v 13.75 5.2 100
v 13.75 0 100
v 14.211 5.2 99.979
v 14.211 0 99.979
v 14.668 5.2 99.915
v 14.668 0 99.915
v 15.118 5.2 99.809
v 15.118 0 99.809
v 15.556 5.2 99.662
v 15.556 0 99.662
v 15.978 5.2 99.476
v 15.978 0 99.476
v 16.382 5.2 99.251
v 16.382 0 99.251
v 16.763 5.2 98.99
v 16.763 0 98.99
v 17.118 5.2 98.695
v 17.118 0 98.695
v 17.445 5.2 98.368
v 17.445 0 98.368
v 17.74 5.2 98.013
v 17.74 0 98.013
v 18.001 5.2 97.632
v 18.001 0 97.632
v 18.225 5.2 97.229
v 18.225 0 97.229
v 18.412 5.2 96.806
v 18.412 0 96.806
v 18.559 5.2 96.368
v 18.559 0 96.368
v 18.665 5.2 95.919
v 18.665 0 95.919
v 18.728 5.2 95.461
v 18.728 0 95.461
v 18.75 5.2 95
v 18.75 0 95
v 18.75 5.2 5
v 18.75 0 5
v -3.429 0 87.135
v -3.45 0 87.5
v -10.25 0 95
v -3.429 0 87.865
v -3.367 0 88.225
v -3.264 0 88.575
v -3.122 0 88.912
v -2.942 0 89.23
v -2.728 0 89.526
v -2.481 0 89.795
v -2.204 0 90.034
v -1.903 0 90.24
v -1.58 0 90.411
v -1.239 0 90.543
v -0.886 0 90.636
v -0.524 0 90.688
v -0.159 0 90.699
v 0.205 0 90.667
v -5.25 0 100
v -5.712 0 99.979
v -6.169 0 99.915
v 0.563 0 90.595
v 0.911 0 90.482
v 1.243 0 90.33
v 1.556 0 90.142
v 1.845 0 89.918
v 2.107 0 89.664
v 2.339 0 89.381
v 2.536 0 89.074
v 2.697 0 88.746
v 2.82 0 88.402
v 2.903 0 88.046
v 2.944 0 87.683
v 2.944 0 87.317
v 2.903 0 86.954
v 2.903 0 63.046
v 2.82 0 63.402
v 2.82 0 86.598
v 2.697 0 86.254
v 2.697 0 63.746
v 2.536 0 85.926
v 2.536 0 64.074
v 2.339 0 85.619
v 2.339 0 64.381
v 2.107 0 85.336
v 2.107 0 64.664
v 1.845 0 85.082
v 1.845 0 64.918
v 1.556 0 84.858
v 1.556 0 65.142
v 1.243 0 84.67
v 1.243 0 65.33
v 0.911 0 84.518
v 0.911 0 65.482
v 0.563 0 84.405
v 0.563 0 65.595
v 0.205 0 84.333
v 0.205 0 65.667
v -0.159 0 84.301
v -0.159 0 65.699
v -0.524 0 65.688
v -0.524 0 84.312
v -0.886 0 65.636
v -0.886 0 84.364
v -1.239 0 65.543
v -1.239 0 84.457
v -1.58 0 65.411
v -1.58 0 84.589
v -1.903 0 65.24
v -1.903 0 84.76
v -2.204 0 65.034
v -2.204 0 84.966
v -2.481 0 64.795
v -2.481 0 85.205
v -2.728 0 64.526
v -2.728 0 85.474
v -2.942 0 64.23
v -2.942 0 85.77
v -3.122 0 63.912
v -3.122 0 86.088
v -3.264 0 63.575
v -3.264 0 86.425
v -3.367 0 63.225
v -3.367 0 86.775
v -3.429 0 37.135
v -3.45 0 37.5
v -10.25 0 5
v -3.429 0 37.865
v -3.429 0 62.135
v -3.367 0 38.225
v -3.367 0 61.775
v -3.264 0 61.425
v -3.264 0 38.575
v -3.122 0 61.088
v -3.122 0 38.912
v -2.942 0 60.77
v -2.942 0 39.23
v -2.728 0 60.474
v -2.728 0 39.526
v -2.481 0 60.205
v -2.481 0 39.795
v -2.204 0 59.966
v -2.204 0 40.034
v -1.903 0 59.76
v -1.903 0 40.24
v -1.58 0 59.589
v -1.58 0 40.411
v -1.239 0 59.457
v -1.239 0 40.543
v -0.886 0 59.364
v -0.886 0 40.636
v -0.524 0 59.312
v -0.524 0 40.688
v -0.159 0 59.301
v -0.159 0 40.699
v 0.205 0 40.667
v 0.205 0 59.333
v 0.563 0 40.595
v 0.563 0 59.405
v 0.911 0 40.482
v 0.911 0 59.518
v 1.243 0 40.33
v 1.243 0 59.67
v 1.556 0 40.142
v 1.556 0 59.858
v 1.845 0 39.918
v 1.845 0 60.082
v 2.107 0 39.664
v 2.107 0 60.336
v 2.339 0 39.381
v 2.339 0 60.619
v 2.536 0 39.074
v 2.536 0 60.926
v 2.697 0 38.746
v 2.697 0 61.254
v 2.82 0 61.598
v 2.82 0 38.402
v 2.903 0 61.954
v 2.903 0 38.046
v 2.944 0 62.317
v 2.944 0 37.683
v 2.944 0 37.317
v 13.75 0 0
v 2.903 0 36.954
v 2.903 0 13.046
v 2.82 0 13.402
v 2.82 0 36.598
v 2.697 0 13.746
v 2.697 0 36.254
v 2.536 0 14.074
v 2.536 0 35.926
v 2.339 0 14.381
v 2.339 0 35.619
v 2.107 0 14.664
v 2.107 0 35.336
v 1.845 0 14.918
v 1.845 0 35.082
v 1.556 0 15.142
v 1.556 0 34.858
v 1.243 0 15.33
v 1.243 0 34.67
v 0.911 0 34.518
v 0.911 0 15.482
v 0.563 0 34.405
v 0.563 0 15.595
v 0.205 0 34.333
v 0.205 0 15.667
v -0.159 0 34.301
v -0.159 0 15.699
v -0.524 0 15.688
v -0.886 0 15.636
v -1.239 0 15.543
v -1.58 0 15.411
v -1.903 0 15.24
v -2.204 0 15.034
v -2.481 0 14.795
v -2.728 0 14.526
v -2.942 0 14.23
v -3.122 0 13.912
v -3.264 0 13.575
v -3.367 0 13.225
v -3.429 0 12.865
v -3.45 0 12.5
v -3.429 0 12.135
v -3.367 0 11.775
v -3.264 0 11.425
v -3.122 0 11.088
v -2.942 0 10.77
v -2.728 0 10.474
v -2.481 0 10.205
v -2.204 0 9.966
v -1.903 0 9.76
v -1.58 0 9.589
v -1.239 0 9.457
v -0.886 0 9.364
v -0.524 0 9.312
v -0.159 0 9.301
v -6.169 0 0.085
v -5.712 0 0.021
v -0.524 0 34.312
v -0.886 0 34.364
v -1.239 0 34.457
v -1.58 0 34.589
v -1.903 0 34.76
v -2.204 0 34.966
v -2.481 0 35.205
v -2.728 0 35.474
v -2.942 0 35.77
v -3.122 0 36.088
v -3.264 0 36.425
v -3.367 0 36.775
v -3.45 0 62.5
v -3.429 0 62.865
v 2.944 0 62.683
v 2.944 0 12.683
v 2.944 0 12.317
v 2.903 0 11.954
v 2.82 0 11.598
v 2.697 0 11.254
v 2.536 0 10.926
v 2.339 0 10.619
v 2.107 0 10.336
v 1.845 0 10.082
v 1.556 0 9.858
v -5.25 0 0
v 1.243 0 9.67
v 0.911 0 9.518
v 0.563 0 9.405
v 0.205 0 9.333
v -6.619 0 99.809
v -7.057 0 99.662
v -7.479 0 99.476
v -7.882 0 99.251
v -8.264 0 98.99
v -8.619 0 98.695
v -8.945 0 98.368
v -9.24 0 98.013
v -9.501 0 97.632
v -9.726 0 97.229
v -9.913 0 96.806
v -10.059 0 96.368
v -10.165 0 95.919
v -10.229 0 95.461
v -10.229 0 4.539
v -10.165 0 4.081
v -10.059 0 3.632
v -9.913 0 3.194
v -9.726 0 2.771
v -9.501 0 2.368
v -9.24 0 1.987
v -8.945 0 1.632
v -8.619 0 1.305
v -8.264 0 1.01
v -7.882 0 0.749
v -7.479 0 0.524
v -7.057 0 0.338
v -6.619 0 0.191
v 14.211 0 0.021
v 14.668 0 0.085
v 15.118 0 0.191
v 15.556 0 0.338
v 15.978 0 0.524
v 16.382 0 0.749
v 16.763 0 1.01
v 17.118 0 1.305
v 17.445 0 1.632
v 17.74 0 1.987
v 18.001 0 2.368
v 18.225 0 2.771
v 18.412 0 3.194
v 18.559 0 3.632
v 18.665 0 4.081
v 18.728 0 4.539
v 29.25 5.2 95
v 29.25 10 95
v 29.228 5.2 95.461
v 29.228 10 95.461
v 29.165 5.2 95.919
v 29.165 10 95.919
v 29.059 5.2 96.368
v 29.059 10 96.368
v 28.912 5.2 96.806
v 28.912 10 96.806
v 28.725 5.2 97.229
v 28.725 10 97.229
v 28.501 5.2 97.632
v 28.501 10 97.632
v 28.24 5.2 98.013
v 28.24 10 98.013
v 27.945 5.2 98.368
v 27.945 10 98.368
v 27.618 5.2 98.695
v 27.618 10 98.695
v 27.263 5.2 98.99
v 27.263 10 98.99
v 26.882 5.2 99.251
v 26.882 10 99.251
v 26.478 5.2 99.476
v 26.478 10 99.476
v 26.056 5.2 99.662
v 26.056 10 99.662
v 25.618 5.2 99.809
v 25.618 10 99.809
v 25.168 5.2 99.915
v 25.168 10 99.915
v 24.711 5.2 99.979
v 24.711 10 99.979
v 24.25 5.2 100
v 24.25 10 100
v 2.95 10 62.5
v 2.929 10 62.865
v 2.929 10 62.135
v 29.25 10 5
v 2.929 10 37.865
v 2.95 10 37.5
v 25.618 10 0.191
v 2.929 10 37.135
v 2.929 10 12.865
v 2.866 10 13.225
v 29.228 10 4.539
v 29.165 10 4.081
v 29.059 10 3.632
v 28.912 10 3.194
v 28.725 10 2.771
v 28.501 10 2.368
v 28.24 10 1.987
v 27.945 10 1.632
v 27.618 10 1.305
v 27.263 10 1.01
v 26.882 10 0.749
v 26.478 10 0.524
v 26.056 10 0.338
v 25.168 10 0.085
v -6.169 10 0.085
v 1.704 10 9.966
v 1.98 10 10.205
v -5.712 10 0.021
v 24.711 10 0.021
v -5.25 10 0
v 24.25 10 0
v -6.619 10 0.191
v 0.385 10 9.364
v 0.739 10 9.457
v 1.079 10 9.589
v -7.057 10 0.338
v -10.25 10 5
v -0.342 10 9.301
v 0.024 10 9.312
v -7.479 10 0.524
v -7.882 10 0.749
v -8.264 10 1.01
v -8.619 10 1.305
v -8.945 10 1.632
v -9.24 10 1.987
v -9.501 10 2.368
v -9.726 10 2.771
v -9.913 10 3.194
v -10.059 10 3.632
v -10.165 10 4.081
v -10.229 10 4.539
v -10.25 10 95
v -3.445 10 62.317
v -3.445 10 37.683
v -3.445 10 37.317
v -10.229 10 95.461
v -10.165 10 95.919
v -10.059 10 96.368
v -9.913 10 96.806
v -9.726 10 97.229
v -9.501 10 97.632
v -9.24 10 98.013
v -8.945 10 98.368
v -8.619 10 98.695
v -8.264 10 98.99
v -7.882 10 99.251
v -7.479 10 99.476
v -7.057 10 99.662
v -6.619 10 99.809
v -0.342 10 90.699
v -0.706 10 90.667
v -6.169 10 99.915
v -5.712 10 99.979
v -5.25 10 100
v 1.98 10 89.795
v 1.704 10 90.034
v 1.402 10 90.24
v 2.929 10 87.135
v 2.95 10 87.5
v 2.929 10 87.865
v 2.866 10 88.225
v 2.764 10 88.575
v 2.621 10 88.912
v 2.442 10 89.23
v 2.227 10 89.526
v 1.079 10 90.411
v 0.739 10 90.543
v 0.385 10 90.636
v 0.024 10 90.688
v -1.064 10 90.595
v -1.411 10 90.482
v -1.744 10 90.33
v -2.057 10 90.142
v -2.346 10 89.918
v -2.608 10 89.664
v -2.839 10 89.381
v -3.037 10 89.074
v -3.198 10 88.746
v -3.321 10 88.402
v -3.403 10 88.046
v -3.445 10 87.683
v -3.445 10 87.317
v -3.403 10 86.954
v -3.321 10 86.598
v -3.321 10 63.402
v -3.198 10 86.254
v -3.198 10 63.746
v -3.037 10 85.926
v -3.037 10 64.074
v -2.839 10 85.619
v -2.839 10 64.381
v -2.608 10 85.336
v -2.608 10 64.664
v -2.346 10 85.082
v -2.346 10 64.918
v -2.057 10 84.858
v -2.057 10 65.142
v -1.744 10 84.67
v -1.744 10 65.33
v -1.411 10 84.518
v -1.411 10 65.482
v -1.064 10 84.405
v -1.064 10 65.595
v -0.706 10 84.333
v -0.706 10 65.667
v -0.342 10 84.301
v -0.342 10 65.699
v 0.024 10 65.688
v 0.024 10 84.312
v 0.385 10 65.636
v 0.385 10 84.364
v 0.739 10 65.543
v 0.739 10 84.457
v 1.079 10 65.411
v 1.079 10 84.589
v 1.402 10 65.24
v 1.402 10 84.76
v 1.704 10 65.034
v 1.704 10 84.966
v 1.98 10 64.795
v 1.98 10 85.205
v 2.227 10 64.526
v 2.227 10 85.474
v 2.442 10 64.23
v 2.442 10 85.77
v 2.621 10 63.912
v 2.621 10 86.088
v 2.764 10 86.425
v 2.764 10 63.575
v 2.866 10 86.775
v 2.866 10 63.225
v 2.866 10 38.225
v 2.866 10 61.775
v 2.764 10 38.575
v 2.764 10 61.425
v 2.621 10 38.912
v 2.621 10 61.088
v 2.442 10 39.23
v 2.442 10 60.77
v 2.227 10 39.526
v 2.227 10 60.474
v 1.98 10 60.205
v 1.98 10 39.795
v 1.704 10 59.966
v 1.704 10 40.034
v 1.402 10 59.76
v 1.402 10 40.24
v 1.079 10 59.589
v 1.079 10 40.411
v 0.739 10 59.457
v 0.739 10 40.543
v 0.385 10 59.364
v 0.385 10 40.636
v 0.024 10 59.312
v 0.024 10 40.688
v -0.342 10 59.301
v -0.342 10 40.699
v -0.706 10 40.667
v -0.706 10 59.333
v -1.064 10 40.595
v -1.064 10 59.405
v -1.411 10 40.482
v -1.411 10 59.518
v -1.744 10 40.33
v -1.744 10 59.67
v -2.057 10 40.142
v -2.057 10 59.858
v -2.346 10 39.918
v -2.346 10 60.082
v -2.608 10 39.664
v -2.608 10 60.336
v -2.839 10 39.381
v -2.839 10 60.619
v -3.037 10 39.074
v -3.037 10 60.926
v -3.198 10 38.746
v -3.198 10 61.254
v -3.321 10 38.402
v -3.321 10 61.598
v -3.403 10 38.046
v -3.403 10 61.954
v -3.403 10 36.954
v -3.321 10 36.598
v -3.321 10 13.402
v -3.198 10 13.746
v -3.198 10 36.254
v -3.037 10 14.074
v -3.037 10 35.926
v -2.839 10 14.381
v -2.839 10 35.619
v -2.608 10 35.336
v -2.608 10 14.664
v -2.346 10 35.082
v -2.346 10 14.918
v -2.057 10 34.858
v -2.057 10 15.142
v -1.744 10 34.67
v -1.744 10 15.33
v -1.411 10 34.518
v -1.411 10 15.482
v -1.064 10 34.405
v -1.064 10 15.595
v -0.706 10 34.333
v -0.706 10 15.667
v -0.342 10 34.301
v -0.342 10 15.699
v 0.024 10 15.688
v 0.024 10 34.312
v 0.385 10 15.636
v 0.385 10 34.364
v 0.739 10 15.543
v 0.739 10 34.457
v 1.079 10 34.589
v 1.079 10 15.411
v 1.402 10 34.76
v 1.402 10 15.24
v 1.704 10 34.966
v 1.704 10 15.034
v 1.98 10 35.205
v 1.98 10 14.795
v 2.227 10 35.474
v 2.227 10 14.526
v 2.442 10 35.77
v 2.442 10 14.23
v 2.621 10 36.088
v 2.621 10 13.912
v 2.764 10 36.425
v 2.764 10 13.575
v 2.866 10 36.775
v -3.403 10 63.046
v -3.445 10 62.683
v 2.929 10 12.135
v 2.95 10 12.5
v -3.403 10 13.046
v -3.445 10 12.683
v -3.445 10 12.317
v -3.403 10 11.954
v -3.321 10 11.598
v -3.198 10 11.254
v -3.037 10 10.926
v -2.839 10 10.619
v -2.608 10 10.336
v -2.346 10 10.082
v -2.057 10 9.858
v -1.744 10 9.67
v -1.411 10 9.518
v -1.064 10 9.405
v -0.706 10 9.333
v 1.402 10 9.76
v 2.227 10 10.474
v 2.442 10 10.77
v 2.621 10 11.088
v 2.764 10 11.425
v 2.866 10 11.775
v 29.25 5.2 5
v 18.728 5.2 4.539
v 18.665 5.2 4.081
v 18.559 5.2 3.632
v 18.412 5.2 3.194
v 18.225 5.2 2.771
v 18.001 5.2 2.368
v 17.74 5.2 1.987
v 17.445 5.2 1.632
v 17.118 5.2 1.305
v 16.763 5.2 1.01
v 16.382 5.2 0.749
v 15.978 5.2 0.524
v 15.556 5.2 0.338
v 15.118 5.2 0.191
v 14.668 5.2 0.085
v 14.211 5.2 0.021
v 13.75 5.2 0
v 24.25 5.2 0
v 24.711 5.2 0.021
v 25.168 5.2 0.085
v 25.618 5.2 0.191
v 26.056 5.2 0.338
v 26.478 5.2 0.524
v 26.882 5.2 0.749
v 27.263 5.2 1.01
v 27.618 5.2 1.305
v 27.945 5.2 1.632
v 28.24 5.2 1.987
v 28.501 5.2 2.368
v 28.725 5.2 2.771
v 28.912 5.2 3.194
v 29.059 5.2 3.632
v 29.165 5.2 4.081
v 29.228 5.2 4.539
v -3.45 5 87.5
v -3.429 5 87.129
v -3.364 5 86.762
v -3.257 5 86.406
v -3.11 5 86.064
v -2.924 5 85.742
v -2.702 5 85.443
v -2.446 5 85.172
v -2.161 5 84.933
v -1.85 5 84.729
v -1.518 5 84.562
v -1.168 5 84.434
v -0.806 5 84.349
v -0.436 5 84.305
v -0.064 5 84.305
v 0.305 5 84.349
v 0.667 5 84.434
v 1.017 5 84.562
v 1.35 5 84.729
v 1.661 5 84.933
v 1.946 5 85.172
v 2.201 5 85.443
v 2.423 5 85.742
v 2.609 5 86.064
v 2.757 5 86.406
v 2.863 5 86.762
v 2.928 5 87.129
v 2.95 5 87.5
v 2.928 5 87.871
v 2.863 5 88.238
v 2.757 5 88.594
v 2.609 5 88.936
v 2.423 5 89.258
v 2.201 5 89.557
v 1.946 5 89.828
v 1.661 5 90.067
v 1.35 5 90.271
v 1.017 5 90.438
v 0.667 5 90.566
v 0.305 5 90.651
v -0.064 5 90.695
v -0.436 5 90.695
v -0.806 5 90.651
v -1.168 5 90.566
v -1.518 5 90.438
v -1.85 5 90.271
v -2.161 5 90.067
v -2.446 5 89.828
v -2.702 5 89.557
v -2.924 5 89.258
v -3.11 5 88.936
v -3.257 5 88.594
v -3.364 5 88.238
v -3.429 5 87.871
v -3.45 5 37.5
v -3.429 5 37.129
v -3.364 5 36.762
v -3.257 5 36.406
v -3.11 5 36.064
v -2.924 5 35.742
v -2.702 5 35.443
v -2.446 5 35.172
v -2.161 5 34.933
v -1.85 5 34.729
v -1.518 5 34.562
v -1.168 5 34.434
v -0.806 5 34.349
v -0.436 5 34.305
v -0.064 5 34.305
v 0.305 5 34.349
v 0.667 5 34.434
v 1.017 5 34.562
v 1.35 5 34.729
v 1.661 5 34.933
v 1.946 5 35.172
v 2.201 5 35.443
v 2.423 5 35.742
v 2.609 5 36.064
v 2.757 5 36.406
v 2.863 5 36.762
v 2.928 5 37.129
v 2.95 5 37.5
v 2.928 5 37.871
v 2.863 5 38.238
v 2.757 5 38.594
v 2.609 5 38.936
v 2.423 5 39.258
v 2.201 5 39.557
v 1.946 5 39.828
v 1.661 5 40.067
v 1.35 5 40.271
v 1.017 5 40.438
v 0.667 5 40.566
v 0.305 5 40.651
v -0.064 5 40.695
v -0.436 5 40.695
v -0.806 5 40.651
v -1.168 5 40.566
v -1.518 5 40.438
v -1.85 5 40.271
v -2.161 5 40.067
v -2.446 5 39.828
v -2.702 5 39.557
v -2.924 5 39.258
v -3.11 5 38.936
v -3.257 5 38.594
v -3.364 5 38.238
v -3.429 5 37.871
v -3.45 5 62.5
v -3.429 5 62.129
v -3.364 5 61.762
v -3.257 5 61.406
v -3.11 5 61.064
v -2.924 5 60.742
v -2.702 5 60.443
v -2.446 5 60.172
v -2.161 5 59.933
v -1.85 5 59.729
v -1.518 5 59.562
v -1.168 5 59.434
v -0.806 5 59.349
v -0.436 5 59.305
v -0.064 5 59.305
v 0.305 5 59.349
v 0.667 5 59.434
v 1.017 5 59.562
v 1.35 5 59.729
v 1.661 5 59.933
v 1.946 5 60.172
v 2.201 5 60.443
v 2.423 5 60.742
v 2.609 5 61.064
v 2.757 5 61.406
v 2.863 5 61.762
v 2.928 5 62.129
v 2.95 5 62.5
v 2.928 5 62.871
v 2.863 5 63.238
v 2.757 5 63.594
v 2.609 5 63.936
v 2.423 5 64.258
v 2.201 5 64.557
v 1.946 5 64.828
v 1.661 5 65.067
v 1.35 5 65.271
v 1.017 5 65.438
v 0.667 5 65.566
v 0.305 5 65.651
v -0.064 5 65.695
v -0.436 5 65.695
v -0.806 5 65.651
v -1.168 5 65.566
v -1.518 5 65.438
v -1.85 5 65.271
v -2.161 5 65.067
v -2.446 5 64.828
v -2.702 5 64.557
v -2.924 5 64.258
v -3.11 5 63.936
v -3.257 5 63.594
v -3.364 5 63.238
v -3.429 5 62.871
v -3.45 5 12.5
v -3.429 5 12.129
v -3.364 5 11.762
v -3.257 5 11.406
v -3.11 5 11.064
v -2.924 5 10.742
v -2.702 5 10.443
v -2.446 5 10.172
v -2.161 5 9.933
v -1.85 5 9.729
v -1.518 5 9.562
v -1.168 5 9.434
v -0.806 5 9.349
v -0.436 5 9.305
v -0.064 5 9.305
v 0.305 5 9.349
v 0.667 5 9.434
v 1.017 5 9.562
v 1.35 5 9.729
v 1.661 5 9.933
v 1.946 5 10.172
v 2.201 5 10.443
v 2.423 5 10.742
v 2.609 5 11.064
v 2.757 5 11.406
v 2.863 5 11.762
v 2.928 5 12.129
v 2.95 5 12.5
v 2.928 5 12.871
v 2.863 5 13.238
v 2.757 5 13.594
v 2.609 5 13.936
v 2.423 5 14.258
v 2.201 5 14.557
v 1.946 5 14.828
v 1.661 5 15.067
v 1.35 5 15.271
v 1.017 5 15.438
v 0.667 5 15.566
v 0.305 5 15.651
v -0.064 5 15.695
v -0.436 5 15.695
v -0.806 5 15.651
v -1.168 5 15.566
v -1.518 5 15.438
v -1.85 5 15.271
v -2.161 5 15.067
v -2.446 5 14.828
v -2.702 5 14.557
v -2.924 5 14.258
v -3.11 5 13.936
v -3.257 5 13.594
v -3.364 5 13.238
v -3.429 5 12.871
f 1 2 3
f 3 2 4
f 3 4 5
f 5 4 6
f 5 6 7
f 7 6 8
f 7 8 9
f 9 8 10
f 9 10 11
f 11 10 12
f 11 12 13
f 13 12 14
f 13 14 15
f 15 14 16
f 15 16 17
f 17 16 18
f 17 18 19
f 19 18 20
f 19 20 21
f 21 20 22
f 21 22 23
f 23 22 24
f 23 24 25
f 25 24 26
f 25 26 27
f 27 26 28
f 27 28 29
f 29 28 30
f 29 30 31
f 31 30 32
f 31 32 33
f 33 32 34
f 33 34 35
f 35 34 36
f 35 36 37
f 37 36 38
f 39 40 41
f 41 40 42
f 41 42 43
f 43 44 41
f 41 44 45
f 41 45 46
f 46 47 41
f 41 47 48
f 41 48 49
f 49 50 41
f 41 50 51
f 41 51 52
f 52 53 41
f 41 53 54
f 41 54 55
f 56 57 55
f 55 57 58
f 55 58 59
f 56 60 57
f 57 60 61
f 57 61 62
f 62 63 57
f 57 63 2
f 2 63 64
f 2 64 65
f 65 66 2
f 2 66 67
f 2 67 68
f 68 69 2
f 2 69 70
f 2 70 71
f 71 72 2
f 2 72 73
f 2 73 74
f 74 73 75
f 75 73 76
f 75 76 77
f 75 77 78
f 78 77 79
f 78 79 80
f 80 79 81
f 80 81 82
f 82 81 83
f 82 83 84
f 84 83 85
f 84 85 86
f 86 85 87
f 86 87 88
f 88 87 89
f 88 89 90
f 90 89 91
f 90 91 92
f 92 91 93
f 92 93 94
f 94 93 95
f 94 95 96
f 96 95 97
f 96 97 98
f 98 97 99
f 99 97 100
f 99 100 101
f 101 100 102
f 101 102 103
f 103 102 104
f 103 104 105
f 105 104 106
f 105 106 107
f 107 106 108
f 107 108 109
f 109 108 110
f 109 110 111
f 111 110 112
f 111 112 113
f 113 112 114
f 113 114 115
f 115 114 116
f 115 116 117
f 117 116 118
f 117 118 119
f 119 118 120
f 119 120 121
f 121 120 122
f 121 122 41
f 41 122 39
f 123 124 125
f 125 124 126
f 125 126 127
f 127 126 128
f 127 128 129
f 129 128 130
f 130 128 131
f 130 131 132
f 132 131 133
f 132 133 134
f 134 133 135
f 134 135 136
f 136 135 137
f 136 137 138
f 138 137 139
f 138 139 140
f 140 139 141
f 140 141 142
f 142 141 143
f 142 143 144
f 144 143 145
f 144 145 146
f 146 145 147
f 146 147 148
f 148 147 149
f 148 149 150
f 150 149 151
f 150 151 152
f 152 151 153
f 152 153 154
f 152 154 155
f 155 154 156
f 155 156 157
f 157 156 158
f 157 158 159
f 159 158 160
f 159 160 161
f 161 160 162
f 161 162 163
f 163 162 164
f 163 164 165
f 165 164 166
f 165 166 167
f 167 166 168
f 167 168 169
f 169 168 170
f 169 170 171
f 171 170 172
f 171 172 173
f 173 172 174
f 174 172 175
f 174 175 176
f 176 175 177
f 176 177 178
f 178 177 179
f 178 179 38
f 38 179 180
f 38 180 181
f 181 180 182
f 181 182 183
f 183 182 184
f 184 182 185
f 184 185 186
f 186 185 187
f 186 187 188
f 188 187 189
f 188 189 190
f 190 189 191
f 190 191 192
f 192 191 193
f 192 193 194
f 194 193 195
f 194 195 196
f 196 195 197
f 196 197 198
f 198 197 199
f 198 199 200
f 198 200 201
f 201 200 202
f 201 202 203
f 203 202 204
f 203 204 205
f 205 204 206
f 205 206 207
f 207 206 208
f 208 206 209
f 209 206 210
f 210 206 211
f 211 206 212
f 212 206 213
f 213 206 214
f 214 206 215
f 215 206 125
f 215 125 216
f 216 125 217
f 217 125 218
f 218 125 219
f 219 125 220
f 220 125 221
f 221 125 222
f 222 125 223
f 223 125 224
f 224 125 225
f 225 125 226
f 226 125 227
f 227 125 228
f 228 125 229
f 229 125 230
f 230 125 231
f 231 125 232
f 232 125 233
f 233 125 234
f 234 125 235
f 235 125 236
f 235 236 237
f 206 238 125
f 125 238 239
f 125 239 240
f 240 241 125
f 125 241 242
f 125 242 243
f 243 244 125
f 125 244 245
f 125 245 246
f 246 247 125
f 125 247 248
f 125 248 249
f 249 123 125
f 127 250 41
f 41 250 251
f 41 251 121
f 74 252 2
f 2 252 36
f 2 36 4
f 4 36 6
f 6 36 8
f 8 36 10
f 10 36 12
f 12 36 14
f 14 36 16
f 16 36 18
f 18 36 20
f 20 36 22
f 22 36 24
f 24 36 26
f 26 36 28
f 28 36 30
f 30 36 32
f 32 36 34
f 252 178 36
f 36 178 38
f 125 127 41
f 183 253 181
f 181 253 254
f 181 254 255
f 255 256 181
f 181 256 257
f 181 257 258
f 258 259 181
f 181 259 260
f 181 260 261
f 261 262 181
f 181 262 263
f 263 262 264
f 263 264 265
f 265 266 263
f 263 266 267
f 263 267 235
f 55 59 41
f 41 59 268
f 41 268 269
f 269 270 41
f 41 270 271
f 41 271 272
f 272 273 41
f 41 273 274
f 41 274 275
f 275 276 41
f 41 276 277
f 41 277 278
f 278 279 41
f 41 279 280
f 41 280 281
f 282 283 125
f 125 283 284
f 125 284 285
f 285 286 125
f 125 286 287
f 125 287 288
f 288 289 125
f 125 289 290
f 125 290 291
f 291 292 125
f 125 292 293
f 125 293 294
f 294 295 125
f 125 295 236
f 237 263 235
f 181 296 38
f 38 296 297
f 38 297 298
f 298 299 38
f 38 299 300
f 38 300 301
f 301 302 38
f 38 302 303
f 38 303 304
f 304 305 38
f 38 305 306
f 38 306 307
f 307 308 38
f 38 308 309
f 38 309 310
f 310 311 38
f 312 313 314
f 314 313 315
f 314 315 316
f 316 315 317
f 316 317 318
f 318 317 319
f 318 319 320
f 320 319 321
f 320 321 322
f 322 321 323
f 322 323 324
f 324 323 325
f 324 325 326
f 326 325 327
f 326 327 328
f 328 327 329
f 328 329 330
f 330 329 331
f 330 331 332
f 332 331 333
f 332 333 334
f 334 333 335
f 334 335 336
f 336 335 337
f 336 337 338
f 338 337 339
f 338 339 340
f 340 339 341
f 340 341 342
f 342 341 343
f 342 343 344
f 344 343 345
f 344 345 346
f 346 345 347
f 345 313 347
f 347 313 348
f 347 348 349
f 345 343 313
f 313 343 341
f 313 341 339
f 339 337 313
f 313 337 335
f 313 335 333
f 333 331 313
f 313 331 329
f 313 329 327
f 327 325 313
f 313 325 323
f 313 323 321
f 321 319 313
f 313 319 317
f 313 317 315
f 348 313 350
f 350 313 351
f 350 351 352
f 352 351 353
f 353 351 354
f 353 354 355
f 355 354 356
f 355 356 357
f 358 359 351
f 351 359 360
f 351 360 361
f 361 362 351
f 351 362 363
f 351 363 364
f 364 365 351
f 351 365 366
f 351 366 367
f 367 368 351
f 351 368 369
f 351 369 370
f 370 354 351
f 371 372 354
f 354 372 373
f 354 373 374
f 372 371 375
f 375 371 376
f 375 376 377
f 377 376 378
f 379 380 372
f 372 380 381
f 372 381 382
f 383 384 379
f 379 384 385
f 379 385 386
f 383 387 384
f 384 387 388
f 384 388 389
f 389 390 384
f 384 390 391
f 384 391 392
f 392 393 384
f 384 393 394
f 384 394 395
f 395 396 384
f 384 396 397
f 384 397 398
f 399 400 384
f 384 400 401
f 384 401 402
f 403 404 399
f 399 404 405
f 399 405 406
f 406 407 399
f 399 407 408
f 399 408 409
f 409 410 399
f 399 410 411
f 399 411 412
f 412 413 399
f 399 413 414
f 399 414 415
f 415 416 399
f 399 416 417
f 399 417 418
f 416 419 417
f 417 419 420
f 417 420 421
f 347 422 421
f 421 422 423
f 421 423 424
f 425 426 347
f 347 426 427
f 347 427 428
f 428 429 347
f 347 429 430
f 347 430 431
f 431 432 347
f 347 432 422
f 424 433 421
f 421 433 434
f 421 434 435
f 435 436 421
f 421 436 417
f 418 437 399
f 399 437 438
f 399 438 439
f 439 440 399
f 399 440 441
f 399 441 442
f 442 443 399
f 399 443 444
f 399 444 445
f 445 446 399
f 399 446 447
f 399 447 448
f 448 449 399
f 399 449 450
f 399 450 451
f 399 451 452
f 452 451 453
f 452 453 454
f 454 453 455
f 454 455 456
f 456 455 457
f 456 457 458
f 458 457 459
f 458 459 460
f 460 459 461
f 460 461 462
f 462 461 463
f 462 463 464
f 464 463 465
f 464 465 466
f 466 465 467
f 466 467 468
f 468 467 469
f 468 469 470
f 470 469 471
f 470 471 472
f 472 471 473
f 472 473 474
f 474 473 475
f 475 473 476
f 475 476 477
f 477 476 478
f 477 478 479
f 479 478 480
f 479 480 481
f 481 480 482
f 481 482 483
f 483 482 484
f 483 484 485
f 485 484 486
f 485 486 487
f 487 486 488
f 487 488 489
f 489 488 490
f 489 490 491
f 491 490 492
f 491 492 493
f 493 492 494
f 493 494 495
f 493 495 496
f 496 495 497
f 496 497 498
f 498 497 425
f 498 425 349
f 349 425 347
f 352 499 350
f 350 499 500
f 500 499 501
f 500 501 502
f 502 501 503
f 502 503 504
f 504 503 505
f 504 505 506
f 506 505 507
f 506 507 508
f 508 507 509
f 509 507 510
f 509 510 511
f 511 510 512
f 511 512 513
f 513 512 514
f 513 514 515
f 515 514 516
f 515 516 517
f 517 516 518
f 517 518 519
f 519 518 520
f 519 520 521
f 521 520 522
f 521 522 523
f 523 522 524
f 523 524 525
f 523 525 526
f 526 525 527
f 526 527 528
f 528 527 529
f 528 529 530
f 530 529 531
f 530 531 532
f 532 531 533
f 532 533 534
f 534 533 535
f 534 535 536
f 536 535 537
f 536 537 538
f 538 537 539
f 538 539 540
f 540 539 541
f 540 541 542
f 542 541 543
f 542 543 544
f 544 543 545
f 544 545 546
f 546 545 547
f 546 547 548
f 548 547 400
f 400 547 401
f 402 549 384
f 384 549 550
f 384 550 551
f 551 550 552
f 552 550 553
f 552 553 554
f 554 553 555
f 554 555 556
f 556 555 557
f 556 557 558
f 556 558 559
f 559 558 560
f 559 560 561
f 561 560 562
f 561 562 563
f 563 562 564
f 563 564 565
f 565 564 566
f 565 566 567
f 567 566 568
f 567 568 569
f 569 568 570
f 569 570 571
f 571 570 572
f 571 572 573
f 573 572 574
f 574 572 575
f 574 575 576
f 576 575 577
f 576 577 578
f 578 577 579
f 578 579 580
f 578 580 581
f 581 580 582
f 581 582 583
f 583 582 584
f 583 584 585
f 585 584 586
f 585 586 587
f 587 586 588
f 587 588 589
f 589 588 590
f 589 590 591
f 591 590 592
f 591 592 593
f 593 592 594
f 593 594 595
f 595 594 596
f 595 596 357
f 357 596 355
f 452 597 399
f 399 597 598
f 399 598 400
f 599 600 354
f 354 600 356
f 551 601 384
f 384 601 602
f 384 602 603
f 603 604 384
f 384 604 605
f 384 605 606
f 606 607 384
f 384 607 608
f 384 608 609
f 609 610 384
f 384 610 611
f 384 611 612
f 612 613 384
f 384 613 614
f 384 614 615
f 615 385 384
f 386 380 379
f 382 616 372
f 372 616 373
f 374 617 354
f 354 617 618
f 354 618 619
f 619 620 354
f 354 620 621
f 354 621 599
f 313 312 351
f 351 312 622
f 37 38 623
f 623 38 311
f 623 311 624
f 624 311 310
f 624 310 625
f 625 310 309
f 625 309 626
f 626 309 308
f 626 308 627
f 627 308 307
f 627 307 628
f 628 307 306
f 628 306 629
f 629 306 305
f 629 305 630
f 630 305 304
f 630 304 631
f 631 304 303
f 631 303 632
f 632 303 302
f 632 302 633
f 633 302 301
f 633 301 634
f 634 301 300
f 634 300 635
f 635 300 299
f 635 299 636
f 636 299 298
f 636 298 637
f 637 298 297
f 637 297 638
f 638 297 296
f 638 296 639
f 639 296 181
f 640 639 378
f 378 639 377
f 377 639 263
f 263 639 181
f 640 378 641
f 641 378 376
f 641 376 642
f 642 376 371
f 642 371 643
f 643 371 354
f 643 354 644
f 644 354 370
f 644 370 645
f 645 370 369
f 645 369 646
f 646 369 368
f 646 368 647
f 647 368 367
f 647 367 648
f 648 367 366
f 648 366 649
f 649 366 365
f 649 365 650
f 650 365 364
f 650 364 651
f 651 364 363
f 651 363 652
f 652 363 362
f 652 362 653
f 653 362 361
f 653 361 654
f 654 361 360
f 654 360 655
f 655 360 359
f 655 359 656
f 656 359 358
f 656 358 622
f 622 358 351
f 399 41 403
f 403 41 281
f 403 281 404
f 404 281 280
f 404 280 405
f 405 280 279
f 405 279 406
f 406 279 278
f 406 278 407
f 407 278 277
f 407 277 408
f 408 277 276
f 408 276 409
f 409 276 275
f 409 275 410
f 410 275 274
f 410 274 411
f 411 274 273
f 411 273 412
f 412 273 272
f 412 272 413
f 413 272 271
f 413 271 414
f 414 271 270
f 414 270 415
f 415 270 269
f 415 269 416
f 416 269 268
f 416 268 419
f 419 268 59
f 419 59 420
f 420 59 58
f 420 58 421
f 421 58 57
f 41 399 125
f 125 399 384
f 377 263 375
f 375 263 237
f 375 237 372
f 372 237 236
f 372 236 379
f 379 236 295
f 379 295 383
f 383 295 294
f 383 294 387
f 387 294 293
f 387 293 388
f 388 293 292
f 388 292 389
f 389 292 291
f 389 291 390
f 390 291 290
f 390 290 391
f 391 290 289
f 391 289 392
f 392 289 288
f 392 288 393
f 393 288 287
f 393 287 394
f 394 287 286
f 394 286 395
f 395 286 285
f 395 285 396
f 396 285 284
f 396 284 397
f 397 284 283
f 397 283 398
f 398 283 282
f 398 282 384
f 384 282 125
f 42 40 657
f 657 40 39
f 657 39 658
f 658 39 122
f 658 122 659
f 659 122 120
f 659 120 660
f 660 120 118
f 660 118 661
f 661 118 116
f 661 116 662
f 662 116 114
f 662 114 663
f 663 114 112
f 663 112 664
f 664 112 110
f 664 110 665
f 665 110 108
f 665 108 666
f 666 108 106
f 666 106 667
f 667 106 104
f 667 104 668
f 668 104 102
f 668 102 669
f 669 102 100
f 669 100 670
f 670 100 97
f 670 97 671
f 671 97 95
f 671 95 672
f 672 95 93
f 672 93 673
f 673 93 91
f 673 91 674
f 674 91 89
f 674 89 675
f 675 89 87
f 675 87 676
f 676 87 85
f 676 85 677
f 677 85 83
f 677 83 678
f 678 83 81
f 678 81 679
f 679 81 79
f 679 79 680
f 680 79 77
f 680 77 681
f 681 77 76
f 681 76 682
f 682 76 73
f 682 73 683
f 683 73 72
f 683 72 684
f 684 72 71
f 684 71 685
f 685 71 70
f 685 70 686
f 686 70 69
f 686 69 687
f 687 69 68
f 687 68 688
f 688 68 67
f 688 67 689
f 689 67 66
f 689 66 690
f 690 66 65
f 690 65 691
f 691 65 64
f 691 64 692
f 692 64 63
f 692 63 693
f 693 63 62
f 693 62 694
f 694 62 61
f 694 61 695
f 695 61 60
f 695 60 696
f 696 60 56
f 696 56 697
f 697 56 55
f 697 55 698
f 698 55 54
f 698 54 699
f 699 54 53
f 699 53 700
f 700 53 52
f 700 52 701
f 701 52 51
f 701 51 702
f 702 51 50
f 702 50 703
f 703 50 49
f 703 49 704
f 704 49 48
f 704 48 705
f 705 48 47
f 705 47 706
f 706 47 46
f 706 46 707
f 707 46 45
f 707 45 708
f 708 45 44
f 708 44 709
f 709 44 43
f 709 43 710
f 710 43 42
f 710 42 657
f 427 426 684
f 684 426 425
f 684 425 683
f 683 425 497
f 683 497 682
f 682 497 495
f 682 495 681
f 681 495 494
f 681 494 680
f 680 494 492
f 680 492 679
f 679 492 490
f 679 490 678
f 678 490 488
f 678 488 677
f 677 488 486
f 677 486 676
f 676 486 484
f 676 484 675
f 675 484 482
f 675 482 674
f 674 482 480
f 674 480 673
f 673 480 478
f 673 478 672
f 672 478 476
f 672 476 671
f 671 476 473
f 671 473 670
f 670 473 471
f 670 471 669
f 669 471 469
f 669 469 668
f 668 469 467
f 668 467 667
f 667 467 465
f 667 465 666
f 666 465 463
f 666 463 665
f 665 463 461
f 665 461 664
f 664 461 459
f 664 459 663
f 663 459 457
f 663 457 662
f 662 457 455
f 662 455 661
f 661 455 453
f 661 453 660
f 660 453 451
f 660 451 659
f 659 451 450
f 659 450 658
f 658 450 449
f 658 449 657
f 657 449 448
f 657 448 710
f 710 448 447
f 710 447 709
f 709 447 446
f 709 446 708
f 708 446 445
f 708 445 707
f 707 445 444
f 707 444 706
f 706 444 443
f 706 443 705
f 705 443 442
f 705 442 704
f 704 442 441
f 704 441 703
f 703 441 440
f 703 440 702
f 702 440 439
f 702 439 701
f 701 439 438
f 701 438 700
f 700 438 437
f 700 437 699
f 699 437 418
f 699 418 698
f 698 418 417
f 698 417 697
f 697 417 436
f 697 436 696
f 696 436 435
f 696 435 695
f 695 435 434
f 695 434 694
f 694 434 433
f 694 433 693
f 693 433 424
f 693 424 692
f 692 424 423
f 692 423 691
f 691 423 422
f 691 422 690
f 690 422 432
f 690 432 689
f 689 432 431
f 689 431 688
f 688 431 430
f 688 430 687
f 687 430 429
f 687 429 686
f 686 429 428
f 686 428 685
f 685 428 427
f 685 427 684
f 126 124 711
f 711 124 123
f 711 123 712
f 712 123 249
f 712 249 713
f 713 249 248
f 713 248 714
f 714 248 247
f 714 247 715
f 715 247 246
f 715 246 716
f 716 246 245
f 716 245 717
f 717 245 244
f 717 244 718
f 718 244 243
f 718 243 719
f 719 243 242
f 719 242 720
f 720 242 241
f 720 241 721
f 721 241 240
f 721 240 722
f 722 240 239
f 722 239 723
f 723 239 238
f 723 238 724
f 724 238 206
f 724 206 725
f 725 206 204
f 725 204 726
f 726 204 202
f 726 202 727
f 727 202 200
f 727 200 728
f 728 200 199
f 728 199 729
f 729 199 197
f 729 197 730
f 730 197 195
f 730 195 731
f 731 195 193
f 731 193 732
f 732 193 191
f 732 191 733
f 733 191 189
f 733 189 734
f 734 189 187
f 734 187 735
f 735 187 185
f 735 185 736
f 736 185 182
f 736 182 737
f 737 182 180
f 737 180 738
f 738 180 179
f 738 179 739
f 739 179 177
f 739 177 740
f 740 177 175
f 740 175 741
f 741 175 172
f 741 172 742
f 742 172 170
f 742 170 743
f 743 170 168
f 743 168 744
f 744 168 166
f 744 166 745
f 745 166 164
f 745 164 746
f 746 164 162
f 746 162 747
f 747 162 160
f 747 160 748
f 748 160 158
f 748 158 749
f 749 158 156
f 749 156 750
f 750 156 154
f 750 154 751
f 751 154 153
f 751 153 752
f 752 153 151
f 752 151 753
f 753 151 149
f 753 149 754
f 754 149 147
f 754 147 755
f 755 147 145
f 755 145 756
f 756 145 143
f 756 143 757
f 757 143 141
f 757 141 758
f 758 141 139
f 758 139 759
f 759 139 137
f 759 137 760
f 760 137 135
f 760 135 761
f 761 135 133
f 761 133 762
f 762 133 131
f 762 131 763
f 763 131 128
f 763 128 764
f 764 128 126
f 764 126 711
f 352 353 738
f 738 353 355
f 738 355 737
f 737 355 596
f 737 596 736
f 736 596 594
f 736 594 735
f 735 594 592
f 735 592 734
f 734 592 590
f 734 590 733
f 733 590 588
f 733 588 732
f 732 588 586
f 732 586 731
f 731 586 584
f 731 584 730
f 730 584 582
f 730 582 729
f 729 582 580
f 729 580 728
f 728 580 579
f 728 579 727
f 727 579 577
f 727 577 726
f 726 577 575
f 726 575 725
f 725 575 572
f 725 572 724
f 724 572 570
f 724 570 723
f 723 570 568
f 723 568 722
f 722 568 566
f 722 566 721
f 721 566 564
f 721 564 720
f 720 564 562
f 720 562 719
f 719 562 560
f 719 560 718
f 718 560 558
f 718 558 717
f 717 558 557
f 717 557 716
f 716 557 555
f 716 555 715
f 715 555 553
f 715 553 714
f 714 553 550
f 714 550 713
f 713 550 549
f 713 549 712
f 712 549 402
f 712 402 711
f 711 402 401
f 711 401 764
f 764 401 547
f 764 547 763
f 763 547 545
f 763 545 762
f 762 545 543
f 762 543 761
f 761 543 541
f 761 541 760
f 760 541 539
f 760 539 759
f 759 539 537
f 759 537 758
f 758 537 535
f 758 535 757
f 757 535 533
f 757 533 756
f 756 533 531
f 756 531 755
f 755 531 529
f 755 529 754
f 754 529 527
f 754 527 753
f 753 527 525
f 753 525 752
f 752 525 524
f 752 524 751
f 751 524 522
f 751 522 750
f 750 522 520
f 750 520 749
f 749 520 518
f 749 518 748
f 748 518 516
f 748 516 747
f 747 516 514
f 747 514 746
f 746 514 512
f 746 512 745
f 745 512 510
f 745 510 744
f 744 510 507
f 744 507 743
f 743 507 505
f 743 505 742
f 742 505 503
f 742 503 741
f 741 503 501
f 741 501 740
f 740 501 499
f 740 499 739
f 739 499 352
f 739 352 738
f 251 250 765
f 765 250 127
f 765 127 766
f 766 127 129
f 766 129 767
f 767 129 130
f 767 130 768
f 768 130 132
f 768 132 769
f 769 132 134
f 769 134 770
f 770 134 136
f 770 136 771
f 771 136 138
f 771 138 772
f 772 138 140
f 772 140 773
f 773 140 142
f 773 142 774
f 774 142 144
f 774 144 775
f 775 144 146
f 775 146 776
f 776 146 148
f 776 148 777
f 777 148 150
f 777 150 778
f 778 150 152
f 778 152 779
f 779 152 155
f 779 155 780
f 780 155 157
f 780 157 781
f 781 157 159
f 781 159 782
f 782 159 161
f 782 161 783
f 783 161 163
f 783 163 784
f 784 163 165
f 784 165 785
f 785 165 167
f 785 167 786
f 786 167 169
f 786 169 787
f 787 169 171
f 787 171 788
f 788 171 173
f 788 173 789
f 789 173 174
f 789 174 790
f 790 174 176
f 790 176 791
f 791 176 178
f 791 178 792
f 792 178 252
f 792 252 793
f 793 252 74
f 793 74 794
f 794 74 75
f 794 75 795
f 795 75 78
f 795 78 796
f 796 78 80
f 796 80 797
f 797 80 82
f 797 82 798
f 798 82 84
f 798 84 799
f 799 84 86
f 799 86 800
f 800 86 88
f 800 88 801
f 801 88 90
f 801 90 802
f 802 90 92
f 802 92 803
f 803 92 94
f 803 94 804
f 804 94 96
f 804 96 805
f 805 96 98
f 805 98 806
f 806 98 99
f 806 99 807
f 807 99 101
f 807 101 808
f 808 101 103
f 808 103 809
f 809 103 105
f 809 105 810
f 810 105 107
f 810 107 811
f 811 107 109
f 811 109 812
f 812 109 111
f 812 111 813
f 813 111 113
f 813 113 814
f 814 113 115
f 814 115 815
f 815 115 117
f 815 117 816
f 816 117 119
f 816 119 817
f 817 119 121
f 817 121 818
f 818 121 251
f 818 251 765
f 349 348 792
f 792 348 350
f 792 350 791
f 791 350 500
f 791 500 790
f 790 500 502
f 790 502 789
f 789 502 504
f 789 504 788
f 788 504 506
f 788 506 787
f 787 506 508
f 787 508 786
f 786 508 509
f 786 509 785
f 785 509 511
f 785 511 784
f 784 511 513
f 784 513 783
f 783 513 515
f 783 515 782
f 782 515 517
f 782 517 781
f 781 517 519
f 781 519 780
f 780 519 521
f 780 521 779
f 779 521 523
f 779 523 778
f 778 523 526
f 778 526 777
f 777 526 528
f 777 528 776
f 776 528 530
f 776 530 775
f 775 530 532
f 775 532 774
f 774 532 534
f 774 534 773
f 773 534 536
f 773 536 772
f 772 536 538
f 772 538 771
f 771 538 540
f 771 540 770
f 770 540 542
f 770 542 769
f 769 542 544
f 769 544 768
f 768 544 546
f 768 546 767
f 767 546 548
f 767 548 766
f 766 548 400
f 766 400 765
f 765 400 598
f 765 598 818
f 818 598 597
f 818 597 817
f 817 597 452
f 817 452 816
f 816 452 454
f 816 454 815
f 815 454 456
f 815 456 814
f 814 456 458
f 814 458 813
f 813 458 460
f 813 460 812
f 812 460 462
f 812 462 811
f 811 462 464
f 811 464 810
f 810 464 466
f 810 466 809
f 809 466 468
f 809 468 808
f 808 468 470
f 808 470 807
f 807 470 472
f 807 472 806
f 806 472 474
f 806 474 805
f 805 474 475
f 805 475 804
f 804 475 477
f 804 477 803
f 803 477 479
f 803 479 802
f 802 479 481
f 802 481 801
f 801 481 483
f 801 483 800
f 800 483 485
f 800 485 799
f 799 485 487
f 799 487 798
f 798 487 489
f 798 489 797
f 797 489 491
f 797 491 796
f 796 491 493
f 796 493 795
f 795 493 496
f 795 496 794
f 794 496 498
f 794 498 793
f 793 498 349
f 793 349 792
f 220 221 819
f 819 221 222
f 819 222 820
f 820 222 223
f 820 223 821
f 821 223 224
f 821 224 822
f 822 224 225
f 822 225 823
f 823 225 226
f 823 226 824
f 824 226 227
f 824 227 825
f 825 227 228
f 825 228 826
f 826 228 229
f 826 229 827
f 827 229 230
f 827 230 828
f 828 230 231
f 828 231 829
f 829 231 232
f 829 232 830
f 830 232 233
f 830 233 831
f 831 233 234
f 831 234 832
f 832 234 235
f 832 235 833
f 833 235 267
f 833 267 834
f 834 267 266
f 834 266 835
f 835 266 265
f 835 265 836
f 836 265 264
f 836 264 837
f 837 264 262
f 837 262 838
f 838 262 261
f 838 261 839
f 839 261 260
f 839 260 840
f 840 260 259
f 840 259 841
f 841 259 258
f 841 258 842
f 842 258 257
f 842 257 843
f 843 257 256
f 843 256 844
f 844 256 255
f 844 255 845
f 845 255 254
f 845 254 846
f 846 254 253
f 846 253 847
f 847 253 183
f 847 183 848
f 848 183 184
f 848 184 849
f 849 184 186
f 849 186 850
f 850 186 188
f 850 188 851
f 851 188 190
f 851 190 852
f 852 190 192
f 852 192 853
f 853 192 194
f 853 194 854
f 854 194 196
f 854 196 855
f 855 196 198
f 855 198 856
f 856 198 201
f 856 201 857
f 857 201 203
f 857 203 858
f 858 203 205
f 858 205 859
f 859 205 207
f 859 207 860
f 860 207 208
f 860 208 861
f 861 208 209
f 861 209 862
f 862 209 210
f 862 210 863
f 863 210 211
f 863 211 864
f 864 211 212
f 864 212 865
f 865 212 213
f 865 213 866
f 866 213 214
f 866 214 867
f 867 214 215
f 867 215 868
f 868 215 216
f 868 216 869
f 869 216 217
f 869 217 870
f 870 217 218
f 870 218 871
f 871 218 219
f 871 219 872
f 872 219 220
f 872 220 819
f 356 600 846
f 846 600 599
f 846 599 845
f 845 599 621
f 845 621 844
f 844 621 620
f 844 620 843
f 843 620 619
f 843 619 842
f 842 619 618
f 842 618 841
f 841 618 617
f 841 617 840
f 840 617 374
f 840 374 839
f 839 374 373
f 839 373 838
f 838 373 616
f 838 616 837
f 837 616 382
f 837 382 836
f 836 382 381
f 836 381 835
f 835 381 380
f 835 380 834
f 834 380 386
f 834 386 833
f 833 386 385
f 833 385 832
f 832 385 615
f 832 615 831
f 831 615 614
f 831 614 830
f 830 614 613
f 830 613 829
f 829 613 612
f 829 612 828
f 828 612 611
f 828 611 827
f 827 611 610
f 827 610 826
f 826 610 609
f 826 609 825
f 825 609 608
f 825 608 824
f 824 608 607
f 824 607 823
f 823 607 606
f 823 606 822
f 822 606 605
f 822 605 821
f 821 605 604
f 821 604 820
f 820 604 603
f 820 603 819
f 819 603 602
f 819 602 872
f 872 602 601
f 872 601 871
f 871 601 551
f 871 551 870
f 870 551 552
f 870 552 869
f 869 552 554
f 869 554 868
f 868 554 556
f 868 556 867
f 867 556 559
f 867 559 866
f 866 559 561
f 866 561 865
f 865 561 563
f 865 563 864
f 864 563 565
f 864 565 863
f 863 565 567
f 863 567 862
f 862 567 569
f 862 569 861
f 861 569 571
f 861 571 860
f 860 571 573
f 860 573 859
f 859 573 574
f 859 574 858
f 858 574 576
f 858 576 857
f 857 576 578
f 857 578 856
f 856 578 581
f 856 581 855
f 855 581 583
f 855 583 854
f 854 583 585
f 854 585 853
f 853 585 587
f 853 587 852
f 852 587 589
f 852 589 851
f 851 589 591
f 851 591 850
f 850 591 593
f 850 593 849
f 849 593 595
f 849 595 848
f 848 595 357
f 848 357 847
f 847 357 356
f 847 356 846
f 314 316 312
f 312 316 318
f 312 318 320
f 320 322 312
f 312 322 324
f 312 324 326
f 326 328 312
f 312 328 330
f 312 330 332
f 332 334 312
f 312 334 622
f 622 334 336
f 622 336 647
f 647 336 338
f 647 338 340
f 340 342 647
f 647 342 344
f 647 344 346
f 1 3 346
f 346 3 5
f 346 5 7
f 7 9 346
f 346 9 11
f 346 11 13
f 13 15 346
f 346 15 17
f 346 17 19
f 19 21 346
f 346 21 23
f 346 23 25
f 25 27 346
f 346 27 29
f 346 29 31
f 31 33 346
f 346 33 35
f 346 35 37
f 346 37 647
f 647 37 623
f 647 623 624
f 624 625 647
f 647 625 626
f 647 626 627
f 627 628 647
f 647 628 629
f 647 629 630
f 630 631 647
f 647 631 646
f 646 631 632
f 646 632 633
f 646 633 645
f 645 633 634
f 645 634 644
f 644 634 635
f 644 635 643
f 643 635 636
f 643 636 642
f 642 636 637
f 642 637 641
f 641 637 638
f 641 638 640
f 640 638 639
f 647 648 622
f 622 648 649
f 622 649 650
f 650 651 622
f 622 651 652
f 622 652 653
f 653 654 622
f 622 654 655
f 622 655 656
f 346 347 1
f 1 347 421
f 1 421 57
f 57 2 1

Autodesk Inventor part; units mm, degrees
ref_plane "YZ Plane" through (0, 0, 0) normal (1, 0, 0) x (0, 1, 0)
ref_plane "XZ Plane" through (0, 0, 0) normal (0, 1, 0) x (-1, 0, 0)
ref_plane "XY Plane" through (0, 0, 0) normal (0, 0, 1) x (1, 0, 0)
sketch "Skizze1" plane through (0, 0, 0) normal (0, 0, 1) x (1, 0, 0)
  line L0 (-10.2503, 0) -> (-10.2503, 10)
  line L1 (-10.2503, 10) -> (29.2497, 10)
  line L2 (29.2497, 10) -> (29.2497, 5.2)
  line L3 (29.2497, 5.2) -> (18.7497, 5.2)
  line L4 (18.7497, 5.2) -> (18.7497, 0)
  line L5 (18.7497, 0) -> (-10.2503, 0)
  point P0 (0, 0)
  dimension "d0" = 39.5
  dimension "d1" = 10
  dimension "d2" = 5.2
  dimension "d5" = 10.5
extrude "Extrusion1" add sketch "Skizze1" along normal blind 100
sketch "Skizze2" plane through (-10.2503, 10, 0) normal (0, 1, 0) x (1, 0, 0)
  line L0 (0, 0) -> (0, -100) projected
  line L1 (39.5, 0) -> (39.5, -100) projected
  line L2 (39.5, -100) -> (0, -100) projected
  point P0 (10.2503, 0)
  point P1 (10, -37.5)
  point P2 (10, -62.5)
  point P3 (10, -87.5)
  point P4 (10, -12.5)
  dimension "d10" = 10
  dimension "d11" = 10
  dimension "d12" = 10
  dimension "d13" = 12.5
  dimension "d14" = 25
  dimension "d15" = 25
  dimension "d16" = 10
  dimension "d17" = 25
hole "Bohrung1" at (-0.2503, 10, 37.5) at (-0.2503, 10, 62.5) at (-0.2503, 10, 87.5) at (-0.2503, 10, 12.5) direction (0, -1, 0) diameter 6.4 end through all
fillet "Rundung1" radius 5 6 edges at (-10.2503, 5, 0) (-10.2503, 5, 100) (29.2497, 7.6, 0) (18.7497, 2.6, 0) (29.2497, 7.6, 100) (18.7497, 2.6, 100)
properties part number "FMR_DXWD80_CPW_Halter_D"
